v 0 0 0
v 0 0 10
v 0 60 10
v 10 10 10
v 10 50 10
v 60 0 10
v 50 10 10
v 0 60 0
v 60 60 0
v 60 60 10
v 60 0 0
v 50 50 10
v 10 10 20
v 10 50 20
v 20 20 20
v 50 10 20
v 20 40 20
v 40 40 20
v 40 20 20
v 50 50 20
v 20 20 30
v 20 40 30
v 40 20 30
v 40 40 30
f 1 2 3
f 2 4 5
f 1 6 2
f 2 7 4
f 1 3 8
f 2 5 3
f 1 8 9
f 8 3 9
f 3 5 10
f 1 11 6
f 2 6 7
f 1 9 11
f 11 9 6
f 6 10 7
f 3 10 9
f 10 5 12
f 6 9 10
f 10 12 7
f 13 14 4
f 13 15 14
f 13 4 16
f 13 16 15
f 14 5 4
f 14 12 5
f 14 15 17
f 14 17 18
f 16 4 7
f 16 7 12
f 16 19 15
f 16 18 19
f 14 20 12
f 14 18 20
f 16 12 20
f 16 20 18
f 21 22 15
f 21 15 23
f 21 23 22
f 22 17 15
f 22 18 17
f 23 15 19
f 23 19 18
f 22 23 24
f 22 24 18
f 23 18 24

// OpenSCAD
translate([0, 0, 0])
    cube([60, 60, 10], center = false);

translate([10, 10, 10])
    cube([40, 40, 10], center = false);

translate([20, 20, 20])
    cube([20, 20, 10], center = false);
